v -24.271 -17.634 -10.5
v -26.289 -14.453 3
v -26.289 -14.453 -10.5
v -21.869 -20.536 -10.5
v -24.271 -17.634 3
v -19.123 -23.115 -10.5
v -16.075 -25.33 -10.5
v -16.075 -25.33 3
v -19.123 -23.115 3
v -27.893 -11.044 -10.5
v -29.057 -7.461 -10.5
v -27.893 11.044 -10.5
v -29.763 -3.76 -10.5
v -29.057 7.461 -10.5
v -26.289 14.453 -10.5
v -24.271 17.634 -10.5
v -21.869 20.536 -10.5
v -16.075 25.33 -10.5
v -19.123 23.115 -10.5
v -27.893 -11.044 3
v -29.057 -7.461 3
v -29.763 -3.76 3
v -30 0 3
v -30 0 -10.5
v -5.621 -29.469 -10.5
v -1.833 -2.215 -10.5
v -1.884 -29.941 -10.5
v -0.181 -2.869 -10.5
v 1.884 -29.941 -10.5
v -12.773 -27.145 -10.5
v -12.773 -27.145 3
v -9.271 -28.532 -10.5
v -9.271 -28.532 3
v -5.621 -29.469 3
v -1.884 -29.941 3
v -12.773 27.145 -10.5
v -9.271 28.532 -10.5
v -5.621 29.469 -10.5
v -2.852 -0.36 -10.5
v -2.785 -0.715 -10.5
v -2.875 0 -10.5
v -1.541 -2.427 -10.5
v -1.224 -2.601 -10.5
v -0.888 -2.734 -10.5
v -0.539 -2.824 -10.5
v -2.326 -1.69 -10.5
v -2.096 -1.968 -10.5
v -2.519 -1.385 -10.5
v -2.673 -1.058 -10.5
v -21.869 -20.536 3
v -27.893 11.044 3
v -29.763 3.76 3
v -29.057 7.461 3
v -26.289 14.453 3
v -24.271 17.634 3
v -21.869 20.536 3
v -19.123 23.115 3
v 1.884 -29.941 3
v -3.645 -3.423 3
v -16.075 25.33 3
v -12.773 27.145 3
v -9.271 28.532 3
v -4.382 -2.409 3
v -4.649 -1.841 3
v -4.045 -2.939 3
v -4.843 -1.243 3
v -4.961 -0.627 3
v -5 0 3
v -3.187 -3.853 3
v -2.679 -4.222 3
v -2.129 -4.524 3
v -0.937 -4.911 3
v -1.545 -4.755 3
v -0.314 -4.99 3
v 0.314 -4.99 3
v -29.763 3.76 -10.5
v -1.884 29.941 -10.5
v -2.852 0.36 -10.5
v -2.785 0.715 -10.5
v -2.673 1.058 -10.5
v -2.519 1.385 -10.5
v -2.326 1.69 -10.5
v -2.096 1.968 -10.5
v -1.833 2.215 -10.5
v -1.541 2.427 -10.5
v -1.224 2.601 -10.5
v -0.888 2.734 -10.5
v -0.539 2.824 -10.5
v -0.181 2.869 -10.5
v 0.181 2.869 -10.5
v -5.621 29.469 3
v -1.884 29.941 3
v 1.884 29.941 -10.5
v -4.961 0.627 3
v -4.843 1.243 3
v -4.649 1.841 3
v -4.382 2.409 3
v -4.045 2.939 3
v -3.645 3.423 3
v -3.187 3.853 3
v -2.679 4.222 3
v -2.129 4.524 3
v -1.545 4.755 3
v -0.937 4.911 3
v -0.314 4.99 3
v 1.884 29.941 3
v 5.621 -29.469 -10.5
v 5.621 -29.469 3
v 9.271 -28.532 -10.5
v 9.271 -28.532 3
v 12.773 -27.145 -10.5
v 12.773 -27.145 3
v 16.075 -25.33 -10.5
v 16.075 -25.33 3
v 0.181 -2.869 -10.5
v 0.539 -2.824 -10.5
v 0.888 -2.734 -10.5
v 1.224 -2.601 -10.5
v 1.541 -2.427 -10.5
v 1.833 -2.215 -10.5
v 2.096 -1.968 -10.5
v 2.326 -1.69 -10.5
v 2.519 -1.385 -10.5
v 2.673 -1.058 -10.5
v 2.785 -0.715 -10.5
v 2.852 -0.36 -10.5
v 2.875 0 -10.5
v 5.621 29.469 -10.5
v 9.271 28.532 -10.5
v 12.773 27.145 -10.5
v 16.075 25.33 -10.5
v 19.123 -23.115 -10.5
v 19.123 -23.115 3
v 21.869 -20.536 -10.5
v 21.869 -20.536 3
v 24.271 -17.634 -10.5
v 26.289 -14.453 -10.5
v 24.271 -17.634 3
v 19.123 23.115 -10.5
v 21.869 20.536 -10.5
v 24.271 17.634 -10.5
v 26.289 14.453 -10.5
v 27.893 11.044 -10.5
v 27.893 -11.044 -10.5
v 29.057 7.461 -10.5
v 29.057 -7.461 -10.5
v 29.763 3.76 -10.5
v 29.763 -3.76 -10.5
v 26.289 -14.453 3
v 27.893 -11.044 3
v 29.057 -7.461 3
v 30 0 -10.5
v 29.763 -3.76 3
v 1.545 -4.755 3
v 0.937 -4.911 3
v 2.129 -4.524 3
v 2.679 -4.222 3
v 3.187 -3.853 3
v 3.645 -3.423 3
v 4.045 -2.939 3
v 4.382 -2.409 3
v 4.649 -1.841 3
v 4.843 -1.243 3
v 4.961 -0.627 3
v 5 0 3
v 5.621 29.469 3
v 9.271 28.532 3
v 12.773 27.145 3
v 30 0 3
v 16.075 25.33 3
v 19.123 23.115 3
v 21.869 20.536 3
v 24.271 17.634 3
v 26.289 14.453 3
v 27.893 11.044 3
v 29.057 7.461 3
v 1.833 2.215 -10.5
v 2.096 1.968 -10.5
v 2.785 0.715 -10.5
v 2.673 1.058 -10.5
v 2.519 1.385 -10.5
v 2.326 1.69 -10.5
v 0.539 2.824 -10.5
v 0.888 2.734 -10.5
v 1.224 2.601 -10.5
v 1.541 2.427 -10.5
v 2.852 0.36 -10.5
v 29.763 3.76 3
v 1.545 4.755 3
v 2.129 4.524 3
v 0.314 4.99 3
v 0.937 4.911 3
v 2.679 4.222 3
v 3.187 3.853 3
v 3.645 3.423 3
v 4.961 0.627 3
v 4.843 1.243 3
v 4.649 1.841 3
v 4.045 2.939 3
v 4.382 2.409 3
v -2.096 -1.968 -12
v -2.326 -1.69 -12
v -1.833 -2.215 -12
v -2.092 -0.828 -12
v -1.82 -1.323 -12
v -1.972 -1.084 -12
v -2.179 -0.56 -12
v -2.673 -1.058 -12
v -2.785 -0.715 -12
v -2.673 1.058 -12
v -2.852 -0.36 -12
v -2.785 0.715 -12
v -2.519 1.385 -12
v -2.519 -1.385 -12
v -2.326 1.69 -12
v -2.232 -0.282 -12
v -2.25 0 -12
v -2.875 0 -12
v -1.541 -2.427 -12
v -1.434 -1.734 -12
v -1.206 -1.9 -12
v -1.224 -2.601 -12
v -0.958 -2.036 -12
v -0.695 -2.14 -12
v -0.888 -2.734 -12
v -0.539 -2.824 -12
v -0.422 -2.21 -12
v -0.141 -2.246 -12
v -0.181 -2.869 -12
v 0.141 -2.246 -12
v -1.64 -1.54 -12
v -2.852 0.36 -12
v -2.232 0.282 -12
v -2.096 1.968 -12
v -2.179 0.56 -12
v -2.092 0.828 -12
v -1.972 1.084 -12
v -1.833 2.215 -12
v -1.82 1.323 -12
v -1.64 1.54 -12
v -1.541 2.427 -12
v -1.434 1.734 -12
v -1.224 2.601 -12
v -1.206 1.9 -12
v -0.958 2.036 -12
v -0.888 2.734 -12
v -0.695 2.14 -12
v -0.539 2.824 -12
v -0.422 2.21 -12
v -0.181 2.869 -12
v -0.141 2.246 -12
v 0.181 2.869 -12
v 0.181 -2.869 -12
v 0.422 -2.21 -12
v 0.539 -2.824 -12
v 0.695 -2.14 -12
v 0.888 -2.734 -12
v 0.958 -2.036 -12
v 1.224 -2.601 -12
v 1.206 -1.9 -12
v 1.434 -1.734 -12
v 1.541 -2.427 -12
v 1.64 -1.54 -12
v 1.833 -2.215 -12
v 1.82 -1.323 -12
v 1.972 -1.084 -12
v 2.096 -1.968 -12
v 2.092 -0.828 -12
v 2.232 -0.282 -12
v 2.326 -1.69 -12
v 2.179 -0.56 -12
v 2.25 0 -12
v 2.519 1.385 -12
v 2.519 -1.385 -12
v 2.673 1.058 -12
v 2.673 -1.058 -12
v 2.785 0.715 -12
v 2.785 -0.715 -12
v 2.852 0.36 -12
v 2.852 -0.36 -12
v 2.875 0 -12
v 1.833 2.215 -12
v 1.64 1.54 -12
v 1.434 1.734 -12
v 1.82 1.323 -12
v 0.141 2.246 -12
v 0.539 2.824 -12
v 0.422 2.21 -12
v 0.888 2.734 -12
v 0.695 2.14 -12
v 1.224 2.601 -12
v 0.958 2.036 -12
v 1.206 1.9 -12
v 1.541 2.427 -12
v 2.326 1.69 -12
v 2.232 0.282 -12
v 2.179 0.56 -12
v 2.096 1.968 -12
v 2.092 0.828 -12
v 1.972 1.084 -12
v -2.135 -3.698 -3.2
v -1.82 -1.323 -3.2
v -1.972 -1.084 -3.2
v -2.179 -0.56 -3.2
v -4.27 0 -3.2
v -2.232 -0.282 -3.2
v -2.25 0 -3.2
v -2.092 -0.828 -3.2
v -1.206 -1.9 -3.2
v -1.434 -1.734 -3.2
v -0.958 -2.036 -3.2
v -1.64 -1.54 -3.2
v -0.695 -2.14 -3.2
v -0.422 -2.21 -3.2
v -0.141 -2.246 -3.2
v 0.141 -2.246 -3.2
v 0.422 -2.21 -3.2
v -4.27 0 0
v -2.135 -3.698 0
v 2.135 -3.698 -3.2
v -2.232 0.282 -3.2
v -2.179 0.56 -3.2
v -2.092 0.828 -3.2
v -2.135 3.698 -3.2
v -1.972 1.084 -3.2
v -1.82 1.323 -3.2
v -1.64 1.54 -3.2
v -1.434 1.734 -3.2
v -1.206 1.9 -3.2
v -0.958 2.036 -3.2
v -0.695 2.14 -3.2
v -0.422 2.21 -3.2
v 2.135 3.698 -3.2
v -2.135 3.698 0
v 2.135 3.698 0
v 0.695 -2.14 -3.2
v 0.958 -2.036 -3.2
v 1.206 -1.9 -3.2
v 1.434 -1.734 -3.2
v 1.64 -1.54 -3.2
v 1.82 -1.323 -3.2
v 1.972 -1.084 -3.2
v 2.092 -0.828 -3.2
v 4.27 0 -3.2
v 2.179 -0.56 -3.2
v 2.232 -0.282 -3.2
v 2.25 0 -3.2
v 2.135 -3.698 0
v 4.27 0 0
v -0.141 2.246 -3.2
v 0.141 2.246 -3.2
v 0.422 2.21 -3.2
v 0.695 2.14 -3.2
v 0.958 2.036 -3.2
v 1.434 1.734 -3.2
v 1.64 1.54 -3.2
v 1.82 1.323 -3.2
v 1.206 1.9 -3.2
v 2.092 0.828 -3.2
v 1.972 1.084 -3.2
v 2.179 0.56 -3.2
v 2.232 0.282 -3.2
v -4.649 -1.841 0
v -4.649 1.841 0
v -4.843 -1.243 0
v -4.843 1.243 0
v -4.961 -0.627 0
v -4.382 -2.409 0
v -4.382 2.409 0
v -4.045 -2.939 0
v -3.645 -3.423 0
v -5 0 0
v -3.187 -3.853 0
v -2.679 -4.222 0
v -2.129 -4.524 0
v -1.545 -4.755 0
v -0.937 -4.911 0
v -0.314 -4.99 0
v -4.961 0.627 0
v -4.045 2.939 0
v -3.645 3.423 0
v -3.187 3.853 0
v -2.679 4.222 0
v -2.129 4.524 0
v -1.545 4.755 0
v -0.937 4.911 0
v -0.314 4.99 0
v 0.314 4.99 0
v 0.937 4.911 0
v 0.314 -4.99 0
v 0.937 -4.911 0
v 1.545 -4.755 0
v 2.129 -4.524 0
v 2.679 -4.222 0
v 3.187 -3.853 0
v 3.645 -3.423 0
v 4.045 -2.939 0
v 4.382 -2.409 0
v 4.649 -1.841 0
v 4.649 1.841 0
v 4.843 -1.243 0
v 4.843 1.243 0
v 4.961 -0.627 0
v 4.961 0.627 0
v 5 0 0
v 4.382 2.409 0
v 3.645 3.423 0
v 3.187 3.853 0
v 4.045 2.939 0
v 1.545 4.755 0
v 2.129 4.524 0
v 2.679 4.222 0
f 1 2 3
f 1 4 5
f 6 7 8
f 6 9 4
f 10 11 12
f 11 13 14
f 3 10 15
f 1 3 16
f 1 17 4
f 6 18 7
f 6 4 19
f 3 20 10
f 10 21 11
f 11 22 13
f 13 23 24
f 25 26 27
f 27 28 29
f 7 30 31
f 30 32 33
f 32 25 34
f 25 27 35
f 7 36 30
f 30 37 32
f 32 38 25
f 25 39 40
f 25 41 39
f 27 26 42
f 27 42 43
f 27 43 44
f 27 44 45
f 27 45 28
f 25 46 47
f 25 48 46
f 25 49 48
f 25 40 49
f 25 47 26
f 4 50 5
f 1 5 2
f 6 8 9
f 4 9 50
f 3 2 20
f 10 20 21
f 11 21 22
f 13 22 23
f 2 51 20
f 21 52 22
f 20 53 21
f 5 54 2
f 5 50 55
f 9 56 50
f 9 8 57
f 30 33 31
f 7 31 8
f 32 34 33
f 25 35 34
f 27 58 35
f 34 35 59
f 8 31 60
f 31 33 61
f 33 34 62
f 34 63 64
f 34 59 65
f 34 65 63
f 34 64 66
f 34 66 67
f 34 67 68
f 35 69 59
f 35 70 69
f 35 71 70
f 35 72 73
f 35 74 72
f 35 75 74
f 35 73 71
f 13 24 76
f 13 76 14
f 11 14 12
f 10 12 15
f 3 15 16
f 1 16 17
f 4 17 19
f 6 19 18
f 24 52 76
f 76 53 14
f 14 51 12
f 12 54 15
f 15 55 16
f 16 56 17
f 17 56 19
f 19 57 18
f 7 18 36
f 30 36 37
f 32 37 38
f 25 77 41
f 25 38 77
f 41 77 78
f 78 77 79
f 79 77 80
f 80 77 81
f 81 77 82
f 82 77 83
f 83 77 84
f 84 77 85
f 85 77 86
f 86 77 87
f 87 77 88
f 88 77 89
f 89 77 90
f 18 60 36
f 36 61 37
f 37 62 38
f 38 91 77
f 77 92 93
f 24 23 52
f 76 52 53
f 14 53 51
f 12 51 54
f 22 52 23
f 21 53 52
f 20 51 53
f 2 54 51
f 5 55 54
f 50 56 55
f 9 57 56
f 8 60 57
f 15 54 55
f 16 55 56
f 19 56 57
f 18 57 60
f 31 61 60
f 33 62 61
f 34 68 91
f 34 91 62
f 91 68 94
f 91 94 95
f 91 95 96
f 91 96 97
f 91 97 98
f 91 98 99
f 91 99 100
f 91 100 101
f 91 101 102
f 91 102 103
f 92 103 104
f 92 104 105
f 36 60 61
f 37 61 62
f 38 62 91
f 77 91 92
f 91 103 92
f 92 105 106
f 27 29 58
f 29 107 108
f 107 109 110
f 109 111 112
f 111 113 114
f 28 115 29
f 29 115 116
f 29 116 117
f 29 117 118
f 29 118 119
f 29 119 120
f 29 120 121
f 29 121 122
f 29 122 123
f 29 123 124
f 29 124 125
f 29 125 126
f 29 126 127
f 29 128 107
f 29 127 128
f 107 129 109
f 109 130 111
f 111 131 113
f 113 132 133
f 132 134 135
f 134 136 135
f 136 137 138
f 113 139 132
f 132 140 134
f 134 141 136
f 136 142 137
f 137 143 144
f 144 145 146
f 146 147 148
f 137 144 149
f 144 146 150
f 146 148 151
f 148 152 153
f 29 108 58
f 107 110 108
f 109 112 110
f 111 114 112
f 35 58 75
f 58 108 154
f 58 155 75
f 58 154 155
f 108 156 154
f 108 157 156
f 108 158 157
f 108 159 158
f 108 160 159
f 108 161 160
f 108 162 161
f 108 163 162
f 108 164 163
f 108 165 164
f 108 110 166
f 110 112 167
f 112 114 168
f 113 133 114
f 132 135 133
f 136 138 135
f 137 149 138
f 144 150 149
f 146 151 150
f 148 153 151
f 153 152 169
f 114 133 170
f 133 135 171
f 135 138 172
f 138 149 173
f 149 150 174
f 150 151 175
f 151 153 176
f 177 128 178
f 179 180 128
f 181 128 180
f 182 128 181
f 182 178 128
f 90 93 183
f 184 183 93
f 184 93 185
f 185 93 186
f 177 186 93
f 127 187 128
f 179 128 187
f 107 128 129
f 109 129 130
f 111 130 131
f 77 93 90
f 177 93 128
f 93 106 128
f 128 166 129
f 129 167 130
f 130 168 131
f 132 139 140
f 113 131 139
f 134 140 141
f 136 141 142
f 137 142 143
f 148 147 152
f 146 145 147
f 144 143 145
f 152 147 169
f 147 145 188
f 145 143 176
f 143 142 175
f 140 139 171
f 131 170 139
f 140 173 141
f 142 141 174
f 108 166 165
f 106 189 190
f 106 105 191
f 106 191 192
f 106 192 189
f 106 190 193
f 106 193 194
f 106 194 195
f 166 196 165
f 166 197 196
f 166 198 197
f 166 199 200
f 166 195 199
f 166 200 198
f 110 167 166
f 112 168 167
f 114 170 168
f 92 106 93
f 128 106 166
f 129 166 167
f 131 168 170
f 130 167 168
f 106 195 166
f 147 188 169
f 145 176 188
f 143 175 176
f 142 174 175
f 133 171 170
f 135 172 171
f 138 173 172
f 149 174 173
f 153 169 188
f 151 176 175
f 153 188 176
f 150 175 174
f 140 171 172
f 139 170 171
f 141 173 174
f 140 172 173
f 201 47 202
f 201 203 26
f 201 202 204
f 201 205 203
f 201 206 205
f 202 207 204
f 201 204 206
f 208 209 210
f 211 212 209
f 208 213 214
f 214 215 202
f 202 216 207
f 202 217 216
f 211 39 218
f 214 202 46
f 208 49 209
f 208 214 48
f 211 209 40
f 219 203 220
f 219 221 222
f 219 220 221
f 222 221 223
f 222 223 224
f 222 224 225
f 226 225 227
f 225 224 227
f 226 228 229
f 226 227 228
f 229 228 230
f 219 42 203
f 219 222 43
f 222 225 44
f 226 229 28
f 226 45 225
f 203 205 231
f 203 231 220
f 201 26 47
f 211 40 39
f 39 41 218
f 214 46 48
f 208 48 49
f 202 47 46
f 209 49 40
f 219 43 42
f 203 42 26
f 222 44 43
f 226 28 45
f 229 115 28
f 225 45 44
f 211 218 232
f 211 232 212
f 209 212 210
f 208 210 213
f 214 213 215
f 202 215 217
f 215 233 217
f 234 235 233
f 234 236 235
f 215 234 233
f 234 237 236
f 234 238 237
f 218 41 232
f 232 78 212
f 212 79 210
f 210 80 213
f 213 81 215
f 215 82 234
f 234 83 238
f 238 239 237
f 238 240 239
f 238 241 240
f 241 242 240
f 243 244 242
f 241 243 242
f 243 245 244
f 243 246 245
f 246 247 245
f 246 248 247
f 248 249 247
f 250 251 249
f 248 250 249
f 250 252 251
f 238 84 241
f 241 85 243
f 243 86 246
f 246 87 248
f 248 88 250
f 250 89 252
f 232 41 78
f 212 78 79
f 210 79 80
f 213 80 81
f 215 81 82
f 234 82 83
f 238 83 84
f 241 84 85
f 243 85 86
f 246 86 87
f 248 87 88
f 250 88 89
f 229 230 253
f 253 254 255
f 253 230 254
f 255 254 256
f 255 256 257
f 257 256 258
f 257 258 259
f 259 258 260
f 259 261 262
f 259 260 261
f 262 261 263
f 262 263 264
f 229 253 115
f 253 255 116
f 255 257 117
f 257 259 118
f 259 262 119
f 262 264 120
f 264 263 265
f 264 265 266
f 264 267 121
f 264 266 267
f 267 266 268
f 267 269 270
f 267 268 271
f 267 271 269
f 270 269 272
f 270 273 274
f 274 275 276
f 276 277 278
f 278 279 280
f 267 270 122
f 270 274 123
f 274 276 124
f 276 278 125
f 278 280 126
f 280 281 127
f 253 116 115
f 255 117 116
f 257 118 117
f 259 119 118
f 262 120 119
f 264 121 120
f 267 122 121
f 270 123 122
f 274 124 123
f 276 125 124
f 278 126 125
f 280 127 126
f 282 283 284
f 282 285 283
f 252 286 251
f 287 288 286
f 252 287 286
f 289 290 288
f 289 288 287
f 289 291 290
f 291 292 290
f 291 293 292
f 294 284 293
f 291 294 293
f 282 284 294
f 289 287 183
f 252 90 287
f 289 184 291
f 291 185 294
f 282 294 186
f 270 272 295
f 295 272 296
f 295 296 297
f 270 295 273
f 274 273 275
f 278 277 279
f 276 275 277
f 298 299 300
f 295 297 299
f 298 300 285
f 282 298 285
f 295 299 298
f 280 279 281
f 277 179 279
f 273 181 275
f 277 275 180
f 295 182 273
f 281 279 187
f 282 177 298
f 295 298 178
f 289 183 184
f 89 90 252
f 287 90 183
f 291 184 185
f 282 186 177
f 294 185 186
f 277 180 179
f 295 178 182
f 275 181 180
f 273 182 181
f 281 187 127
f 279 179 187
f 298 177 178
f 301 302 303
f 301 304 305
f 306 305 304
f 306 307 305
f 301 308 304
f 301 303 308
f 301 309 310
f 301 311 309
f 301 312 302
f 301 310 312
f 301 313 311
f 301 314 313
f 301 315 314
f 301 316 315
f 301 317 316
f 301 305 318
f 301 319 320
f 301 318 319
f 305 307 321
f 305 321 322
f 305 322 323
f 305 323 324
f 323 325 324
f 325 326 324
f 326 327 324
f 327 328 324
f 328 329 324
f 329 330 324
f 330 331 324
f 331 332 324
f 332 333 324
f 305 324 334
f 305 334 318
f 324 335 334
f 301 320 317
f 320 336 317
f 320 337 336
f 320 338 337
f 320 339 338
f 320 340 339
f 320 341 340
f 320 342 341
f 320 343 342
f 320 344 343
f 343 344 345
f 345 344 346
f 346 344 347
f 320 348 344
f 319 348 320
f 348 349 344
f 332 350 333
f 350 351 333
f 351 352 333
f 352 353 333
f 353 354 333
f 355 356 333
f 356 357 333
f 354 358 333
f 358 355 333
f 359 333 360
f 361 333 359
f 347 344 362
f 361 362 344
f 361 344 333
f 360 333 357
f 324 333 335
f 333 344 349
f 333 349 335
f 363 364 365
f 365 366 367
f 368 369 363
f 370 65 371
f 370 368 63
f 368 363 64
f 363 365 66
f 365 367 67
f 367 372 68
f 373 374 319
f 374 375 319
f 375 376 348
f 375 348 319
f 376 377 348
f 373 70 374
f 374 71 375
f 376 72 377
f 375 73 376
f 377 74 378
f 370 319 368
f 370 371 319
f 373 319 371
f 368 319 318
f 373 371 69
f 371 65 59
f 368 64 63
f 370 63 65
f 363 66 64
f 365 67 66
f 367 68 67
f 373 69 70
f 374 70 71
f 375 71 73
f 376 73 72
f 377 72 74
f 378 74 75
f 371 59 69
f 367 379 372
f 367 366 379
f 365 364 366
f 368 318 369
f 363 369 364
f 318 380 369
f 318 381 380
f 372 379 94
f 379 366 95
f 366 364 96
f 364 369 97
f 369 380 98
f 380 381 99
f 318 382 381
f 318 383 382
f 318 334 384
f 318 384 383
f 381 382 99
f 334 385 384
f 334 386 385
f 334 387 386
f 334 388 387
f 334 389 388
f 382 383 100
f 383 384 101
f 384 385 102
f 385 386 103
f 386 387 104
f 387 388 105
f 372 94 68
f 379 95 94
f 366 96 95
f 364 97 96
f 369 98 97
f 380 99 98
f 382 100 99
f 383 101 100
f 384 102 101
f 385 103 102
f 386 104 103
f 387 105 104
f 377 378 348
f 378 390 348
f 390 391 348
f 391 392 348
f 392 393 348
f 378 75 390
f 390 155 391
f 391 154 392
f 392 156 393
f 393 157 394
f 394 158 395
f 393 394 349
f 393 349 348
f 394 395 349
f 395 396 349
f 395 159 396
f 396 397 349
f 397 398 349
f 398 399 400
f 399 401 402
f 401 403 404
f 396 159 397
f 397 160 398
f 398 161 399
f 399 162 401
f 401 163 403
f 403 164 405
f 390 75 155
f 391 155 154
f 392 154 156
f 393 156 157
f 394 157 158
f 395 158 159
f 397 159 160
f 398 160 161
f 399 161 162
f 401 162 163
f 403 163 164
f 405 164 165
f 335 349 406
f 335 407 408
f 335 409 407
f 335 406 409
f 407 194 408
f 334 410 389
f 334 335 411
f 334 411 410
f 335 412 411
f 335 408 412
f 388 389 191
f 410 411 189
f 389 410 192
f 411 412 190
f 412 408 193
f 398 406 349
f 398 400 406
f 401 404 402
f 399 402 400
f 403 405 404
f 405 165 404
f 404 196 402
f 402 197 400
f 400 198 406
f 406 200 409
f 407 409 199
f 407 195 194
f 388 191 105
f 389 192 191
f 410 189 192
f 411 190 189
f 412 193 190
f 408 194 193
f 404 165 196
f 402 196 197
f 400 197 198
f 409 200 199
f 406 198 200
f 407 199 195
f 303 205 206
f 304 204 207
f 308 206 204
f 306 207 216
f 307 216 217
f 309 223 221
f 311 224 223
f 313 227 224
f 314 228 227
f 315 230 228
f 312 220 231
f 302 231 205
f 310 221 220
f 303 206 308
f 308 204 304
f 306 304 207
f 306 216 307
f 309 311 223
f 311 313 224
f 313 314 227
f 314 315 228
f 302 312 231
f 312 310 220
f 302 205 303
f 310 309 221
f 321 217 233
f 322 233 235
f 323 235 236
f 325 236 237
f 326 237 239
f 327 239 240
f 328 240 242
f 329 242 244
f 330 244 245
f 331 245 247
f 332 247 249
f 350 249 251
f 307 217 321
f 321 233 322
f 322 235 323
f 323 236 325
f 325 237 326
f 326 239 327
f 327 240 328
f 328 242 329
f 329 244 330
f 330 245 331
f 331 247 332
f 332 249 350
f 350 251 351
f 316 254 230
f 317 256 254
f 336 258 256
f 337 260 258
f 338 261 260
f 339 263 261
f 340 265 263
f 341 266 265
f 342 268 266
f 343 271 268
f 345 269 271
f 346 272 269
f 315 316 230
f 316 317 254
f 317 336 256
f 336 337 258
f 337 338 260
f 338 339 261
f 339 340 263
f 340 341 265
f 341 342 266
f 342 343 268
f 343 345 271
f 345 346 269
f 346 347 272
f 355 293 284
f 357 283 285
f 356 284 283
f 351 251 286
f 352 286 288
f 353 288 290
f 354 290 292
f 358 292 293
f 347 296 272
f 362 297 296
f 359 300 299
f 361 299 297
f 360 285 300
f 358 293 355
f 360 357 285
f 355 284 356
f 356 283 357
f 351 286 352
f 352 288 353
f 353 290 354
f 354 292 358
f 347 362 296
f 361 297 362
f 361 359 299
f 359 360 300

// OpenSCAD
$fn = 50;


difference() {
	union() {
		translate(v = [0, 0, -10.5000000000]) {
			cylinder(h = 13.5000000000, r = 30.0000000000);
		}
		#translate(v = [0, 0, -12.0000000000]) {
			cylinder(h = 12, r = 2.8750000000);
		}
	}
	union() {
		translate(v = [0, 0, 0]) {
			rotate(a = [0, 0, 0]) {
				difference() {
					union() {
						translate(v = [0, 0, -3.2000000000]) {
							linear_extrude(height = 3.2000000000) {
								polygon(points = [[4.2698000000, 0.0000000000], [2.1349000000, 3.6977552691], [-2.1349000000, 3.6977552691], [-4.2698000000, 0.0000000000], [-2.1349000000, -3.6977552691], [2.1349000000, -3.6977552691]]);
							}
						}
					}
					union();
				}
			}
		}
		#cylinder(h = 3, r = 5.0000000000);
		#translate(v = [0, 0, -100.0000000000]) {
			cylinder(h = 200, r = 2.2500000000);
		}
	}
}
